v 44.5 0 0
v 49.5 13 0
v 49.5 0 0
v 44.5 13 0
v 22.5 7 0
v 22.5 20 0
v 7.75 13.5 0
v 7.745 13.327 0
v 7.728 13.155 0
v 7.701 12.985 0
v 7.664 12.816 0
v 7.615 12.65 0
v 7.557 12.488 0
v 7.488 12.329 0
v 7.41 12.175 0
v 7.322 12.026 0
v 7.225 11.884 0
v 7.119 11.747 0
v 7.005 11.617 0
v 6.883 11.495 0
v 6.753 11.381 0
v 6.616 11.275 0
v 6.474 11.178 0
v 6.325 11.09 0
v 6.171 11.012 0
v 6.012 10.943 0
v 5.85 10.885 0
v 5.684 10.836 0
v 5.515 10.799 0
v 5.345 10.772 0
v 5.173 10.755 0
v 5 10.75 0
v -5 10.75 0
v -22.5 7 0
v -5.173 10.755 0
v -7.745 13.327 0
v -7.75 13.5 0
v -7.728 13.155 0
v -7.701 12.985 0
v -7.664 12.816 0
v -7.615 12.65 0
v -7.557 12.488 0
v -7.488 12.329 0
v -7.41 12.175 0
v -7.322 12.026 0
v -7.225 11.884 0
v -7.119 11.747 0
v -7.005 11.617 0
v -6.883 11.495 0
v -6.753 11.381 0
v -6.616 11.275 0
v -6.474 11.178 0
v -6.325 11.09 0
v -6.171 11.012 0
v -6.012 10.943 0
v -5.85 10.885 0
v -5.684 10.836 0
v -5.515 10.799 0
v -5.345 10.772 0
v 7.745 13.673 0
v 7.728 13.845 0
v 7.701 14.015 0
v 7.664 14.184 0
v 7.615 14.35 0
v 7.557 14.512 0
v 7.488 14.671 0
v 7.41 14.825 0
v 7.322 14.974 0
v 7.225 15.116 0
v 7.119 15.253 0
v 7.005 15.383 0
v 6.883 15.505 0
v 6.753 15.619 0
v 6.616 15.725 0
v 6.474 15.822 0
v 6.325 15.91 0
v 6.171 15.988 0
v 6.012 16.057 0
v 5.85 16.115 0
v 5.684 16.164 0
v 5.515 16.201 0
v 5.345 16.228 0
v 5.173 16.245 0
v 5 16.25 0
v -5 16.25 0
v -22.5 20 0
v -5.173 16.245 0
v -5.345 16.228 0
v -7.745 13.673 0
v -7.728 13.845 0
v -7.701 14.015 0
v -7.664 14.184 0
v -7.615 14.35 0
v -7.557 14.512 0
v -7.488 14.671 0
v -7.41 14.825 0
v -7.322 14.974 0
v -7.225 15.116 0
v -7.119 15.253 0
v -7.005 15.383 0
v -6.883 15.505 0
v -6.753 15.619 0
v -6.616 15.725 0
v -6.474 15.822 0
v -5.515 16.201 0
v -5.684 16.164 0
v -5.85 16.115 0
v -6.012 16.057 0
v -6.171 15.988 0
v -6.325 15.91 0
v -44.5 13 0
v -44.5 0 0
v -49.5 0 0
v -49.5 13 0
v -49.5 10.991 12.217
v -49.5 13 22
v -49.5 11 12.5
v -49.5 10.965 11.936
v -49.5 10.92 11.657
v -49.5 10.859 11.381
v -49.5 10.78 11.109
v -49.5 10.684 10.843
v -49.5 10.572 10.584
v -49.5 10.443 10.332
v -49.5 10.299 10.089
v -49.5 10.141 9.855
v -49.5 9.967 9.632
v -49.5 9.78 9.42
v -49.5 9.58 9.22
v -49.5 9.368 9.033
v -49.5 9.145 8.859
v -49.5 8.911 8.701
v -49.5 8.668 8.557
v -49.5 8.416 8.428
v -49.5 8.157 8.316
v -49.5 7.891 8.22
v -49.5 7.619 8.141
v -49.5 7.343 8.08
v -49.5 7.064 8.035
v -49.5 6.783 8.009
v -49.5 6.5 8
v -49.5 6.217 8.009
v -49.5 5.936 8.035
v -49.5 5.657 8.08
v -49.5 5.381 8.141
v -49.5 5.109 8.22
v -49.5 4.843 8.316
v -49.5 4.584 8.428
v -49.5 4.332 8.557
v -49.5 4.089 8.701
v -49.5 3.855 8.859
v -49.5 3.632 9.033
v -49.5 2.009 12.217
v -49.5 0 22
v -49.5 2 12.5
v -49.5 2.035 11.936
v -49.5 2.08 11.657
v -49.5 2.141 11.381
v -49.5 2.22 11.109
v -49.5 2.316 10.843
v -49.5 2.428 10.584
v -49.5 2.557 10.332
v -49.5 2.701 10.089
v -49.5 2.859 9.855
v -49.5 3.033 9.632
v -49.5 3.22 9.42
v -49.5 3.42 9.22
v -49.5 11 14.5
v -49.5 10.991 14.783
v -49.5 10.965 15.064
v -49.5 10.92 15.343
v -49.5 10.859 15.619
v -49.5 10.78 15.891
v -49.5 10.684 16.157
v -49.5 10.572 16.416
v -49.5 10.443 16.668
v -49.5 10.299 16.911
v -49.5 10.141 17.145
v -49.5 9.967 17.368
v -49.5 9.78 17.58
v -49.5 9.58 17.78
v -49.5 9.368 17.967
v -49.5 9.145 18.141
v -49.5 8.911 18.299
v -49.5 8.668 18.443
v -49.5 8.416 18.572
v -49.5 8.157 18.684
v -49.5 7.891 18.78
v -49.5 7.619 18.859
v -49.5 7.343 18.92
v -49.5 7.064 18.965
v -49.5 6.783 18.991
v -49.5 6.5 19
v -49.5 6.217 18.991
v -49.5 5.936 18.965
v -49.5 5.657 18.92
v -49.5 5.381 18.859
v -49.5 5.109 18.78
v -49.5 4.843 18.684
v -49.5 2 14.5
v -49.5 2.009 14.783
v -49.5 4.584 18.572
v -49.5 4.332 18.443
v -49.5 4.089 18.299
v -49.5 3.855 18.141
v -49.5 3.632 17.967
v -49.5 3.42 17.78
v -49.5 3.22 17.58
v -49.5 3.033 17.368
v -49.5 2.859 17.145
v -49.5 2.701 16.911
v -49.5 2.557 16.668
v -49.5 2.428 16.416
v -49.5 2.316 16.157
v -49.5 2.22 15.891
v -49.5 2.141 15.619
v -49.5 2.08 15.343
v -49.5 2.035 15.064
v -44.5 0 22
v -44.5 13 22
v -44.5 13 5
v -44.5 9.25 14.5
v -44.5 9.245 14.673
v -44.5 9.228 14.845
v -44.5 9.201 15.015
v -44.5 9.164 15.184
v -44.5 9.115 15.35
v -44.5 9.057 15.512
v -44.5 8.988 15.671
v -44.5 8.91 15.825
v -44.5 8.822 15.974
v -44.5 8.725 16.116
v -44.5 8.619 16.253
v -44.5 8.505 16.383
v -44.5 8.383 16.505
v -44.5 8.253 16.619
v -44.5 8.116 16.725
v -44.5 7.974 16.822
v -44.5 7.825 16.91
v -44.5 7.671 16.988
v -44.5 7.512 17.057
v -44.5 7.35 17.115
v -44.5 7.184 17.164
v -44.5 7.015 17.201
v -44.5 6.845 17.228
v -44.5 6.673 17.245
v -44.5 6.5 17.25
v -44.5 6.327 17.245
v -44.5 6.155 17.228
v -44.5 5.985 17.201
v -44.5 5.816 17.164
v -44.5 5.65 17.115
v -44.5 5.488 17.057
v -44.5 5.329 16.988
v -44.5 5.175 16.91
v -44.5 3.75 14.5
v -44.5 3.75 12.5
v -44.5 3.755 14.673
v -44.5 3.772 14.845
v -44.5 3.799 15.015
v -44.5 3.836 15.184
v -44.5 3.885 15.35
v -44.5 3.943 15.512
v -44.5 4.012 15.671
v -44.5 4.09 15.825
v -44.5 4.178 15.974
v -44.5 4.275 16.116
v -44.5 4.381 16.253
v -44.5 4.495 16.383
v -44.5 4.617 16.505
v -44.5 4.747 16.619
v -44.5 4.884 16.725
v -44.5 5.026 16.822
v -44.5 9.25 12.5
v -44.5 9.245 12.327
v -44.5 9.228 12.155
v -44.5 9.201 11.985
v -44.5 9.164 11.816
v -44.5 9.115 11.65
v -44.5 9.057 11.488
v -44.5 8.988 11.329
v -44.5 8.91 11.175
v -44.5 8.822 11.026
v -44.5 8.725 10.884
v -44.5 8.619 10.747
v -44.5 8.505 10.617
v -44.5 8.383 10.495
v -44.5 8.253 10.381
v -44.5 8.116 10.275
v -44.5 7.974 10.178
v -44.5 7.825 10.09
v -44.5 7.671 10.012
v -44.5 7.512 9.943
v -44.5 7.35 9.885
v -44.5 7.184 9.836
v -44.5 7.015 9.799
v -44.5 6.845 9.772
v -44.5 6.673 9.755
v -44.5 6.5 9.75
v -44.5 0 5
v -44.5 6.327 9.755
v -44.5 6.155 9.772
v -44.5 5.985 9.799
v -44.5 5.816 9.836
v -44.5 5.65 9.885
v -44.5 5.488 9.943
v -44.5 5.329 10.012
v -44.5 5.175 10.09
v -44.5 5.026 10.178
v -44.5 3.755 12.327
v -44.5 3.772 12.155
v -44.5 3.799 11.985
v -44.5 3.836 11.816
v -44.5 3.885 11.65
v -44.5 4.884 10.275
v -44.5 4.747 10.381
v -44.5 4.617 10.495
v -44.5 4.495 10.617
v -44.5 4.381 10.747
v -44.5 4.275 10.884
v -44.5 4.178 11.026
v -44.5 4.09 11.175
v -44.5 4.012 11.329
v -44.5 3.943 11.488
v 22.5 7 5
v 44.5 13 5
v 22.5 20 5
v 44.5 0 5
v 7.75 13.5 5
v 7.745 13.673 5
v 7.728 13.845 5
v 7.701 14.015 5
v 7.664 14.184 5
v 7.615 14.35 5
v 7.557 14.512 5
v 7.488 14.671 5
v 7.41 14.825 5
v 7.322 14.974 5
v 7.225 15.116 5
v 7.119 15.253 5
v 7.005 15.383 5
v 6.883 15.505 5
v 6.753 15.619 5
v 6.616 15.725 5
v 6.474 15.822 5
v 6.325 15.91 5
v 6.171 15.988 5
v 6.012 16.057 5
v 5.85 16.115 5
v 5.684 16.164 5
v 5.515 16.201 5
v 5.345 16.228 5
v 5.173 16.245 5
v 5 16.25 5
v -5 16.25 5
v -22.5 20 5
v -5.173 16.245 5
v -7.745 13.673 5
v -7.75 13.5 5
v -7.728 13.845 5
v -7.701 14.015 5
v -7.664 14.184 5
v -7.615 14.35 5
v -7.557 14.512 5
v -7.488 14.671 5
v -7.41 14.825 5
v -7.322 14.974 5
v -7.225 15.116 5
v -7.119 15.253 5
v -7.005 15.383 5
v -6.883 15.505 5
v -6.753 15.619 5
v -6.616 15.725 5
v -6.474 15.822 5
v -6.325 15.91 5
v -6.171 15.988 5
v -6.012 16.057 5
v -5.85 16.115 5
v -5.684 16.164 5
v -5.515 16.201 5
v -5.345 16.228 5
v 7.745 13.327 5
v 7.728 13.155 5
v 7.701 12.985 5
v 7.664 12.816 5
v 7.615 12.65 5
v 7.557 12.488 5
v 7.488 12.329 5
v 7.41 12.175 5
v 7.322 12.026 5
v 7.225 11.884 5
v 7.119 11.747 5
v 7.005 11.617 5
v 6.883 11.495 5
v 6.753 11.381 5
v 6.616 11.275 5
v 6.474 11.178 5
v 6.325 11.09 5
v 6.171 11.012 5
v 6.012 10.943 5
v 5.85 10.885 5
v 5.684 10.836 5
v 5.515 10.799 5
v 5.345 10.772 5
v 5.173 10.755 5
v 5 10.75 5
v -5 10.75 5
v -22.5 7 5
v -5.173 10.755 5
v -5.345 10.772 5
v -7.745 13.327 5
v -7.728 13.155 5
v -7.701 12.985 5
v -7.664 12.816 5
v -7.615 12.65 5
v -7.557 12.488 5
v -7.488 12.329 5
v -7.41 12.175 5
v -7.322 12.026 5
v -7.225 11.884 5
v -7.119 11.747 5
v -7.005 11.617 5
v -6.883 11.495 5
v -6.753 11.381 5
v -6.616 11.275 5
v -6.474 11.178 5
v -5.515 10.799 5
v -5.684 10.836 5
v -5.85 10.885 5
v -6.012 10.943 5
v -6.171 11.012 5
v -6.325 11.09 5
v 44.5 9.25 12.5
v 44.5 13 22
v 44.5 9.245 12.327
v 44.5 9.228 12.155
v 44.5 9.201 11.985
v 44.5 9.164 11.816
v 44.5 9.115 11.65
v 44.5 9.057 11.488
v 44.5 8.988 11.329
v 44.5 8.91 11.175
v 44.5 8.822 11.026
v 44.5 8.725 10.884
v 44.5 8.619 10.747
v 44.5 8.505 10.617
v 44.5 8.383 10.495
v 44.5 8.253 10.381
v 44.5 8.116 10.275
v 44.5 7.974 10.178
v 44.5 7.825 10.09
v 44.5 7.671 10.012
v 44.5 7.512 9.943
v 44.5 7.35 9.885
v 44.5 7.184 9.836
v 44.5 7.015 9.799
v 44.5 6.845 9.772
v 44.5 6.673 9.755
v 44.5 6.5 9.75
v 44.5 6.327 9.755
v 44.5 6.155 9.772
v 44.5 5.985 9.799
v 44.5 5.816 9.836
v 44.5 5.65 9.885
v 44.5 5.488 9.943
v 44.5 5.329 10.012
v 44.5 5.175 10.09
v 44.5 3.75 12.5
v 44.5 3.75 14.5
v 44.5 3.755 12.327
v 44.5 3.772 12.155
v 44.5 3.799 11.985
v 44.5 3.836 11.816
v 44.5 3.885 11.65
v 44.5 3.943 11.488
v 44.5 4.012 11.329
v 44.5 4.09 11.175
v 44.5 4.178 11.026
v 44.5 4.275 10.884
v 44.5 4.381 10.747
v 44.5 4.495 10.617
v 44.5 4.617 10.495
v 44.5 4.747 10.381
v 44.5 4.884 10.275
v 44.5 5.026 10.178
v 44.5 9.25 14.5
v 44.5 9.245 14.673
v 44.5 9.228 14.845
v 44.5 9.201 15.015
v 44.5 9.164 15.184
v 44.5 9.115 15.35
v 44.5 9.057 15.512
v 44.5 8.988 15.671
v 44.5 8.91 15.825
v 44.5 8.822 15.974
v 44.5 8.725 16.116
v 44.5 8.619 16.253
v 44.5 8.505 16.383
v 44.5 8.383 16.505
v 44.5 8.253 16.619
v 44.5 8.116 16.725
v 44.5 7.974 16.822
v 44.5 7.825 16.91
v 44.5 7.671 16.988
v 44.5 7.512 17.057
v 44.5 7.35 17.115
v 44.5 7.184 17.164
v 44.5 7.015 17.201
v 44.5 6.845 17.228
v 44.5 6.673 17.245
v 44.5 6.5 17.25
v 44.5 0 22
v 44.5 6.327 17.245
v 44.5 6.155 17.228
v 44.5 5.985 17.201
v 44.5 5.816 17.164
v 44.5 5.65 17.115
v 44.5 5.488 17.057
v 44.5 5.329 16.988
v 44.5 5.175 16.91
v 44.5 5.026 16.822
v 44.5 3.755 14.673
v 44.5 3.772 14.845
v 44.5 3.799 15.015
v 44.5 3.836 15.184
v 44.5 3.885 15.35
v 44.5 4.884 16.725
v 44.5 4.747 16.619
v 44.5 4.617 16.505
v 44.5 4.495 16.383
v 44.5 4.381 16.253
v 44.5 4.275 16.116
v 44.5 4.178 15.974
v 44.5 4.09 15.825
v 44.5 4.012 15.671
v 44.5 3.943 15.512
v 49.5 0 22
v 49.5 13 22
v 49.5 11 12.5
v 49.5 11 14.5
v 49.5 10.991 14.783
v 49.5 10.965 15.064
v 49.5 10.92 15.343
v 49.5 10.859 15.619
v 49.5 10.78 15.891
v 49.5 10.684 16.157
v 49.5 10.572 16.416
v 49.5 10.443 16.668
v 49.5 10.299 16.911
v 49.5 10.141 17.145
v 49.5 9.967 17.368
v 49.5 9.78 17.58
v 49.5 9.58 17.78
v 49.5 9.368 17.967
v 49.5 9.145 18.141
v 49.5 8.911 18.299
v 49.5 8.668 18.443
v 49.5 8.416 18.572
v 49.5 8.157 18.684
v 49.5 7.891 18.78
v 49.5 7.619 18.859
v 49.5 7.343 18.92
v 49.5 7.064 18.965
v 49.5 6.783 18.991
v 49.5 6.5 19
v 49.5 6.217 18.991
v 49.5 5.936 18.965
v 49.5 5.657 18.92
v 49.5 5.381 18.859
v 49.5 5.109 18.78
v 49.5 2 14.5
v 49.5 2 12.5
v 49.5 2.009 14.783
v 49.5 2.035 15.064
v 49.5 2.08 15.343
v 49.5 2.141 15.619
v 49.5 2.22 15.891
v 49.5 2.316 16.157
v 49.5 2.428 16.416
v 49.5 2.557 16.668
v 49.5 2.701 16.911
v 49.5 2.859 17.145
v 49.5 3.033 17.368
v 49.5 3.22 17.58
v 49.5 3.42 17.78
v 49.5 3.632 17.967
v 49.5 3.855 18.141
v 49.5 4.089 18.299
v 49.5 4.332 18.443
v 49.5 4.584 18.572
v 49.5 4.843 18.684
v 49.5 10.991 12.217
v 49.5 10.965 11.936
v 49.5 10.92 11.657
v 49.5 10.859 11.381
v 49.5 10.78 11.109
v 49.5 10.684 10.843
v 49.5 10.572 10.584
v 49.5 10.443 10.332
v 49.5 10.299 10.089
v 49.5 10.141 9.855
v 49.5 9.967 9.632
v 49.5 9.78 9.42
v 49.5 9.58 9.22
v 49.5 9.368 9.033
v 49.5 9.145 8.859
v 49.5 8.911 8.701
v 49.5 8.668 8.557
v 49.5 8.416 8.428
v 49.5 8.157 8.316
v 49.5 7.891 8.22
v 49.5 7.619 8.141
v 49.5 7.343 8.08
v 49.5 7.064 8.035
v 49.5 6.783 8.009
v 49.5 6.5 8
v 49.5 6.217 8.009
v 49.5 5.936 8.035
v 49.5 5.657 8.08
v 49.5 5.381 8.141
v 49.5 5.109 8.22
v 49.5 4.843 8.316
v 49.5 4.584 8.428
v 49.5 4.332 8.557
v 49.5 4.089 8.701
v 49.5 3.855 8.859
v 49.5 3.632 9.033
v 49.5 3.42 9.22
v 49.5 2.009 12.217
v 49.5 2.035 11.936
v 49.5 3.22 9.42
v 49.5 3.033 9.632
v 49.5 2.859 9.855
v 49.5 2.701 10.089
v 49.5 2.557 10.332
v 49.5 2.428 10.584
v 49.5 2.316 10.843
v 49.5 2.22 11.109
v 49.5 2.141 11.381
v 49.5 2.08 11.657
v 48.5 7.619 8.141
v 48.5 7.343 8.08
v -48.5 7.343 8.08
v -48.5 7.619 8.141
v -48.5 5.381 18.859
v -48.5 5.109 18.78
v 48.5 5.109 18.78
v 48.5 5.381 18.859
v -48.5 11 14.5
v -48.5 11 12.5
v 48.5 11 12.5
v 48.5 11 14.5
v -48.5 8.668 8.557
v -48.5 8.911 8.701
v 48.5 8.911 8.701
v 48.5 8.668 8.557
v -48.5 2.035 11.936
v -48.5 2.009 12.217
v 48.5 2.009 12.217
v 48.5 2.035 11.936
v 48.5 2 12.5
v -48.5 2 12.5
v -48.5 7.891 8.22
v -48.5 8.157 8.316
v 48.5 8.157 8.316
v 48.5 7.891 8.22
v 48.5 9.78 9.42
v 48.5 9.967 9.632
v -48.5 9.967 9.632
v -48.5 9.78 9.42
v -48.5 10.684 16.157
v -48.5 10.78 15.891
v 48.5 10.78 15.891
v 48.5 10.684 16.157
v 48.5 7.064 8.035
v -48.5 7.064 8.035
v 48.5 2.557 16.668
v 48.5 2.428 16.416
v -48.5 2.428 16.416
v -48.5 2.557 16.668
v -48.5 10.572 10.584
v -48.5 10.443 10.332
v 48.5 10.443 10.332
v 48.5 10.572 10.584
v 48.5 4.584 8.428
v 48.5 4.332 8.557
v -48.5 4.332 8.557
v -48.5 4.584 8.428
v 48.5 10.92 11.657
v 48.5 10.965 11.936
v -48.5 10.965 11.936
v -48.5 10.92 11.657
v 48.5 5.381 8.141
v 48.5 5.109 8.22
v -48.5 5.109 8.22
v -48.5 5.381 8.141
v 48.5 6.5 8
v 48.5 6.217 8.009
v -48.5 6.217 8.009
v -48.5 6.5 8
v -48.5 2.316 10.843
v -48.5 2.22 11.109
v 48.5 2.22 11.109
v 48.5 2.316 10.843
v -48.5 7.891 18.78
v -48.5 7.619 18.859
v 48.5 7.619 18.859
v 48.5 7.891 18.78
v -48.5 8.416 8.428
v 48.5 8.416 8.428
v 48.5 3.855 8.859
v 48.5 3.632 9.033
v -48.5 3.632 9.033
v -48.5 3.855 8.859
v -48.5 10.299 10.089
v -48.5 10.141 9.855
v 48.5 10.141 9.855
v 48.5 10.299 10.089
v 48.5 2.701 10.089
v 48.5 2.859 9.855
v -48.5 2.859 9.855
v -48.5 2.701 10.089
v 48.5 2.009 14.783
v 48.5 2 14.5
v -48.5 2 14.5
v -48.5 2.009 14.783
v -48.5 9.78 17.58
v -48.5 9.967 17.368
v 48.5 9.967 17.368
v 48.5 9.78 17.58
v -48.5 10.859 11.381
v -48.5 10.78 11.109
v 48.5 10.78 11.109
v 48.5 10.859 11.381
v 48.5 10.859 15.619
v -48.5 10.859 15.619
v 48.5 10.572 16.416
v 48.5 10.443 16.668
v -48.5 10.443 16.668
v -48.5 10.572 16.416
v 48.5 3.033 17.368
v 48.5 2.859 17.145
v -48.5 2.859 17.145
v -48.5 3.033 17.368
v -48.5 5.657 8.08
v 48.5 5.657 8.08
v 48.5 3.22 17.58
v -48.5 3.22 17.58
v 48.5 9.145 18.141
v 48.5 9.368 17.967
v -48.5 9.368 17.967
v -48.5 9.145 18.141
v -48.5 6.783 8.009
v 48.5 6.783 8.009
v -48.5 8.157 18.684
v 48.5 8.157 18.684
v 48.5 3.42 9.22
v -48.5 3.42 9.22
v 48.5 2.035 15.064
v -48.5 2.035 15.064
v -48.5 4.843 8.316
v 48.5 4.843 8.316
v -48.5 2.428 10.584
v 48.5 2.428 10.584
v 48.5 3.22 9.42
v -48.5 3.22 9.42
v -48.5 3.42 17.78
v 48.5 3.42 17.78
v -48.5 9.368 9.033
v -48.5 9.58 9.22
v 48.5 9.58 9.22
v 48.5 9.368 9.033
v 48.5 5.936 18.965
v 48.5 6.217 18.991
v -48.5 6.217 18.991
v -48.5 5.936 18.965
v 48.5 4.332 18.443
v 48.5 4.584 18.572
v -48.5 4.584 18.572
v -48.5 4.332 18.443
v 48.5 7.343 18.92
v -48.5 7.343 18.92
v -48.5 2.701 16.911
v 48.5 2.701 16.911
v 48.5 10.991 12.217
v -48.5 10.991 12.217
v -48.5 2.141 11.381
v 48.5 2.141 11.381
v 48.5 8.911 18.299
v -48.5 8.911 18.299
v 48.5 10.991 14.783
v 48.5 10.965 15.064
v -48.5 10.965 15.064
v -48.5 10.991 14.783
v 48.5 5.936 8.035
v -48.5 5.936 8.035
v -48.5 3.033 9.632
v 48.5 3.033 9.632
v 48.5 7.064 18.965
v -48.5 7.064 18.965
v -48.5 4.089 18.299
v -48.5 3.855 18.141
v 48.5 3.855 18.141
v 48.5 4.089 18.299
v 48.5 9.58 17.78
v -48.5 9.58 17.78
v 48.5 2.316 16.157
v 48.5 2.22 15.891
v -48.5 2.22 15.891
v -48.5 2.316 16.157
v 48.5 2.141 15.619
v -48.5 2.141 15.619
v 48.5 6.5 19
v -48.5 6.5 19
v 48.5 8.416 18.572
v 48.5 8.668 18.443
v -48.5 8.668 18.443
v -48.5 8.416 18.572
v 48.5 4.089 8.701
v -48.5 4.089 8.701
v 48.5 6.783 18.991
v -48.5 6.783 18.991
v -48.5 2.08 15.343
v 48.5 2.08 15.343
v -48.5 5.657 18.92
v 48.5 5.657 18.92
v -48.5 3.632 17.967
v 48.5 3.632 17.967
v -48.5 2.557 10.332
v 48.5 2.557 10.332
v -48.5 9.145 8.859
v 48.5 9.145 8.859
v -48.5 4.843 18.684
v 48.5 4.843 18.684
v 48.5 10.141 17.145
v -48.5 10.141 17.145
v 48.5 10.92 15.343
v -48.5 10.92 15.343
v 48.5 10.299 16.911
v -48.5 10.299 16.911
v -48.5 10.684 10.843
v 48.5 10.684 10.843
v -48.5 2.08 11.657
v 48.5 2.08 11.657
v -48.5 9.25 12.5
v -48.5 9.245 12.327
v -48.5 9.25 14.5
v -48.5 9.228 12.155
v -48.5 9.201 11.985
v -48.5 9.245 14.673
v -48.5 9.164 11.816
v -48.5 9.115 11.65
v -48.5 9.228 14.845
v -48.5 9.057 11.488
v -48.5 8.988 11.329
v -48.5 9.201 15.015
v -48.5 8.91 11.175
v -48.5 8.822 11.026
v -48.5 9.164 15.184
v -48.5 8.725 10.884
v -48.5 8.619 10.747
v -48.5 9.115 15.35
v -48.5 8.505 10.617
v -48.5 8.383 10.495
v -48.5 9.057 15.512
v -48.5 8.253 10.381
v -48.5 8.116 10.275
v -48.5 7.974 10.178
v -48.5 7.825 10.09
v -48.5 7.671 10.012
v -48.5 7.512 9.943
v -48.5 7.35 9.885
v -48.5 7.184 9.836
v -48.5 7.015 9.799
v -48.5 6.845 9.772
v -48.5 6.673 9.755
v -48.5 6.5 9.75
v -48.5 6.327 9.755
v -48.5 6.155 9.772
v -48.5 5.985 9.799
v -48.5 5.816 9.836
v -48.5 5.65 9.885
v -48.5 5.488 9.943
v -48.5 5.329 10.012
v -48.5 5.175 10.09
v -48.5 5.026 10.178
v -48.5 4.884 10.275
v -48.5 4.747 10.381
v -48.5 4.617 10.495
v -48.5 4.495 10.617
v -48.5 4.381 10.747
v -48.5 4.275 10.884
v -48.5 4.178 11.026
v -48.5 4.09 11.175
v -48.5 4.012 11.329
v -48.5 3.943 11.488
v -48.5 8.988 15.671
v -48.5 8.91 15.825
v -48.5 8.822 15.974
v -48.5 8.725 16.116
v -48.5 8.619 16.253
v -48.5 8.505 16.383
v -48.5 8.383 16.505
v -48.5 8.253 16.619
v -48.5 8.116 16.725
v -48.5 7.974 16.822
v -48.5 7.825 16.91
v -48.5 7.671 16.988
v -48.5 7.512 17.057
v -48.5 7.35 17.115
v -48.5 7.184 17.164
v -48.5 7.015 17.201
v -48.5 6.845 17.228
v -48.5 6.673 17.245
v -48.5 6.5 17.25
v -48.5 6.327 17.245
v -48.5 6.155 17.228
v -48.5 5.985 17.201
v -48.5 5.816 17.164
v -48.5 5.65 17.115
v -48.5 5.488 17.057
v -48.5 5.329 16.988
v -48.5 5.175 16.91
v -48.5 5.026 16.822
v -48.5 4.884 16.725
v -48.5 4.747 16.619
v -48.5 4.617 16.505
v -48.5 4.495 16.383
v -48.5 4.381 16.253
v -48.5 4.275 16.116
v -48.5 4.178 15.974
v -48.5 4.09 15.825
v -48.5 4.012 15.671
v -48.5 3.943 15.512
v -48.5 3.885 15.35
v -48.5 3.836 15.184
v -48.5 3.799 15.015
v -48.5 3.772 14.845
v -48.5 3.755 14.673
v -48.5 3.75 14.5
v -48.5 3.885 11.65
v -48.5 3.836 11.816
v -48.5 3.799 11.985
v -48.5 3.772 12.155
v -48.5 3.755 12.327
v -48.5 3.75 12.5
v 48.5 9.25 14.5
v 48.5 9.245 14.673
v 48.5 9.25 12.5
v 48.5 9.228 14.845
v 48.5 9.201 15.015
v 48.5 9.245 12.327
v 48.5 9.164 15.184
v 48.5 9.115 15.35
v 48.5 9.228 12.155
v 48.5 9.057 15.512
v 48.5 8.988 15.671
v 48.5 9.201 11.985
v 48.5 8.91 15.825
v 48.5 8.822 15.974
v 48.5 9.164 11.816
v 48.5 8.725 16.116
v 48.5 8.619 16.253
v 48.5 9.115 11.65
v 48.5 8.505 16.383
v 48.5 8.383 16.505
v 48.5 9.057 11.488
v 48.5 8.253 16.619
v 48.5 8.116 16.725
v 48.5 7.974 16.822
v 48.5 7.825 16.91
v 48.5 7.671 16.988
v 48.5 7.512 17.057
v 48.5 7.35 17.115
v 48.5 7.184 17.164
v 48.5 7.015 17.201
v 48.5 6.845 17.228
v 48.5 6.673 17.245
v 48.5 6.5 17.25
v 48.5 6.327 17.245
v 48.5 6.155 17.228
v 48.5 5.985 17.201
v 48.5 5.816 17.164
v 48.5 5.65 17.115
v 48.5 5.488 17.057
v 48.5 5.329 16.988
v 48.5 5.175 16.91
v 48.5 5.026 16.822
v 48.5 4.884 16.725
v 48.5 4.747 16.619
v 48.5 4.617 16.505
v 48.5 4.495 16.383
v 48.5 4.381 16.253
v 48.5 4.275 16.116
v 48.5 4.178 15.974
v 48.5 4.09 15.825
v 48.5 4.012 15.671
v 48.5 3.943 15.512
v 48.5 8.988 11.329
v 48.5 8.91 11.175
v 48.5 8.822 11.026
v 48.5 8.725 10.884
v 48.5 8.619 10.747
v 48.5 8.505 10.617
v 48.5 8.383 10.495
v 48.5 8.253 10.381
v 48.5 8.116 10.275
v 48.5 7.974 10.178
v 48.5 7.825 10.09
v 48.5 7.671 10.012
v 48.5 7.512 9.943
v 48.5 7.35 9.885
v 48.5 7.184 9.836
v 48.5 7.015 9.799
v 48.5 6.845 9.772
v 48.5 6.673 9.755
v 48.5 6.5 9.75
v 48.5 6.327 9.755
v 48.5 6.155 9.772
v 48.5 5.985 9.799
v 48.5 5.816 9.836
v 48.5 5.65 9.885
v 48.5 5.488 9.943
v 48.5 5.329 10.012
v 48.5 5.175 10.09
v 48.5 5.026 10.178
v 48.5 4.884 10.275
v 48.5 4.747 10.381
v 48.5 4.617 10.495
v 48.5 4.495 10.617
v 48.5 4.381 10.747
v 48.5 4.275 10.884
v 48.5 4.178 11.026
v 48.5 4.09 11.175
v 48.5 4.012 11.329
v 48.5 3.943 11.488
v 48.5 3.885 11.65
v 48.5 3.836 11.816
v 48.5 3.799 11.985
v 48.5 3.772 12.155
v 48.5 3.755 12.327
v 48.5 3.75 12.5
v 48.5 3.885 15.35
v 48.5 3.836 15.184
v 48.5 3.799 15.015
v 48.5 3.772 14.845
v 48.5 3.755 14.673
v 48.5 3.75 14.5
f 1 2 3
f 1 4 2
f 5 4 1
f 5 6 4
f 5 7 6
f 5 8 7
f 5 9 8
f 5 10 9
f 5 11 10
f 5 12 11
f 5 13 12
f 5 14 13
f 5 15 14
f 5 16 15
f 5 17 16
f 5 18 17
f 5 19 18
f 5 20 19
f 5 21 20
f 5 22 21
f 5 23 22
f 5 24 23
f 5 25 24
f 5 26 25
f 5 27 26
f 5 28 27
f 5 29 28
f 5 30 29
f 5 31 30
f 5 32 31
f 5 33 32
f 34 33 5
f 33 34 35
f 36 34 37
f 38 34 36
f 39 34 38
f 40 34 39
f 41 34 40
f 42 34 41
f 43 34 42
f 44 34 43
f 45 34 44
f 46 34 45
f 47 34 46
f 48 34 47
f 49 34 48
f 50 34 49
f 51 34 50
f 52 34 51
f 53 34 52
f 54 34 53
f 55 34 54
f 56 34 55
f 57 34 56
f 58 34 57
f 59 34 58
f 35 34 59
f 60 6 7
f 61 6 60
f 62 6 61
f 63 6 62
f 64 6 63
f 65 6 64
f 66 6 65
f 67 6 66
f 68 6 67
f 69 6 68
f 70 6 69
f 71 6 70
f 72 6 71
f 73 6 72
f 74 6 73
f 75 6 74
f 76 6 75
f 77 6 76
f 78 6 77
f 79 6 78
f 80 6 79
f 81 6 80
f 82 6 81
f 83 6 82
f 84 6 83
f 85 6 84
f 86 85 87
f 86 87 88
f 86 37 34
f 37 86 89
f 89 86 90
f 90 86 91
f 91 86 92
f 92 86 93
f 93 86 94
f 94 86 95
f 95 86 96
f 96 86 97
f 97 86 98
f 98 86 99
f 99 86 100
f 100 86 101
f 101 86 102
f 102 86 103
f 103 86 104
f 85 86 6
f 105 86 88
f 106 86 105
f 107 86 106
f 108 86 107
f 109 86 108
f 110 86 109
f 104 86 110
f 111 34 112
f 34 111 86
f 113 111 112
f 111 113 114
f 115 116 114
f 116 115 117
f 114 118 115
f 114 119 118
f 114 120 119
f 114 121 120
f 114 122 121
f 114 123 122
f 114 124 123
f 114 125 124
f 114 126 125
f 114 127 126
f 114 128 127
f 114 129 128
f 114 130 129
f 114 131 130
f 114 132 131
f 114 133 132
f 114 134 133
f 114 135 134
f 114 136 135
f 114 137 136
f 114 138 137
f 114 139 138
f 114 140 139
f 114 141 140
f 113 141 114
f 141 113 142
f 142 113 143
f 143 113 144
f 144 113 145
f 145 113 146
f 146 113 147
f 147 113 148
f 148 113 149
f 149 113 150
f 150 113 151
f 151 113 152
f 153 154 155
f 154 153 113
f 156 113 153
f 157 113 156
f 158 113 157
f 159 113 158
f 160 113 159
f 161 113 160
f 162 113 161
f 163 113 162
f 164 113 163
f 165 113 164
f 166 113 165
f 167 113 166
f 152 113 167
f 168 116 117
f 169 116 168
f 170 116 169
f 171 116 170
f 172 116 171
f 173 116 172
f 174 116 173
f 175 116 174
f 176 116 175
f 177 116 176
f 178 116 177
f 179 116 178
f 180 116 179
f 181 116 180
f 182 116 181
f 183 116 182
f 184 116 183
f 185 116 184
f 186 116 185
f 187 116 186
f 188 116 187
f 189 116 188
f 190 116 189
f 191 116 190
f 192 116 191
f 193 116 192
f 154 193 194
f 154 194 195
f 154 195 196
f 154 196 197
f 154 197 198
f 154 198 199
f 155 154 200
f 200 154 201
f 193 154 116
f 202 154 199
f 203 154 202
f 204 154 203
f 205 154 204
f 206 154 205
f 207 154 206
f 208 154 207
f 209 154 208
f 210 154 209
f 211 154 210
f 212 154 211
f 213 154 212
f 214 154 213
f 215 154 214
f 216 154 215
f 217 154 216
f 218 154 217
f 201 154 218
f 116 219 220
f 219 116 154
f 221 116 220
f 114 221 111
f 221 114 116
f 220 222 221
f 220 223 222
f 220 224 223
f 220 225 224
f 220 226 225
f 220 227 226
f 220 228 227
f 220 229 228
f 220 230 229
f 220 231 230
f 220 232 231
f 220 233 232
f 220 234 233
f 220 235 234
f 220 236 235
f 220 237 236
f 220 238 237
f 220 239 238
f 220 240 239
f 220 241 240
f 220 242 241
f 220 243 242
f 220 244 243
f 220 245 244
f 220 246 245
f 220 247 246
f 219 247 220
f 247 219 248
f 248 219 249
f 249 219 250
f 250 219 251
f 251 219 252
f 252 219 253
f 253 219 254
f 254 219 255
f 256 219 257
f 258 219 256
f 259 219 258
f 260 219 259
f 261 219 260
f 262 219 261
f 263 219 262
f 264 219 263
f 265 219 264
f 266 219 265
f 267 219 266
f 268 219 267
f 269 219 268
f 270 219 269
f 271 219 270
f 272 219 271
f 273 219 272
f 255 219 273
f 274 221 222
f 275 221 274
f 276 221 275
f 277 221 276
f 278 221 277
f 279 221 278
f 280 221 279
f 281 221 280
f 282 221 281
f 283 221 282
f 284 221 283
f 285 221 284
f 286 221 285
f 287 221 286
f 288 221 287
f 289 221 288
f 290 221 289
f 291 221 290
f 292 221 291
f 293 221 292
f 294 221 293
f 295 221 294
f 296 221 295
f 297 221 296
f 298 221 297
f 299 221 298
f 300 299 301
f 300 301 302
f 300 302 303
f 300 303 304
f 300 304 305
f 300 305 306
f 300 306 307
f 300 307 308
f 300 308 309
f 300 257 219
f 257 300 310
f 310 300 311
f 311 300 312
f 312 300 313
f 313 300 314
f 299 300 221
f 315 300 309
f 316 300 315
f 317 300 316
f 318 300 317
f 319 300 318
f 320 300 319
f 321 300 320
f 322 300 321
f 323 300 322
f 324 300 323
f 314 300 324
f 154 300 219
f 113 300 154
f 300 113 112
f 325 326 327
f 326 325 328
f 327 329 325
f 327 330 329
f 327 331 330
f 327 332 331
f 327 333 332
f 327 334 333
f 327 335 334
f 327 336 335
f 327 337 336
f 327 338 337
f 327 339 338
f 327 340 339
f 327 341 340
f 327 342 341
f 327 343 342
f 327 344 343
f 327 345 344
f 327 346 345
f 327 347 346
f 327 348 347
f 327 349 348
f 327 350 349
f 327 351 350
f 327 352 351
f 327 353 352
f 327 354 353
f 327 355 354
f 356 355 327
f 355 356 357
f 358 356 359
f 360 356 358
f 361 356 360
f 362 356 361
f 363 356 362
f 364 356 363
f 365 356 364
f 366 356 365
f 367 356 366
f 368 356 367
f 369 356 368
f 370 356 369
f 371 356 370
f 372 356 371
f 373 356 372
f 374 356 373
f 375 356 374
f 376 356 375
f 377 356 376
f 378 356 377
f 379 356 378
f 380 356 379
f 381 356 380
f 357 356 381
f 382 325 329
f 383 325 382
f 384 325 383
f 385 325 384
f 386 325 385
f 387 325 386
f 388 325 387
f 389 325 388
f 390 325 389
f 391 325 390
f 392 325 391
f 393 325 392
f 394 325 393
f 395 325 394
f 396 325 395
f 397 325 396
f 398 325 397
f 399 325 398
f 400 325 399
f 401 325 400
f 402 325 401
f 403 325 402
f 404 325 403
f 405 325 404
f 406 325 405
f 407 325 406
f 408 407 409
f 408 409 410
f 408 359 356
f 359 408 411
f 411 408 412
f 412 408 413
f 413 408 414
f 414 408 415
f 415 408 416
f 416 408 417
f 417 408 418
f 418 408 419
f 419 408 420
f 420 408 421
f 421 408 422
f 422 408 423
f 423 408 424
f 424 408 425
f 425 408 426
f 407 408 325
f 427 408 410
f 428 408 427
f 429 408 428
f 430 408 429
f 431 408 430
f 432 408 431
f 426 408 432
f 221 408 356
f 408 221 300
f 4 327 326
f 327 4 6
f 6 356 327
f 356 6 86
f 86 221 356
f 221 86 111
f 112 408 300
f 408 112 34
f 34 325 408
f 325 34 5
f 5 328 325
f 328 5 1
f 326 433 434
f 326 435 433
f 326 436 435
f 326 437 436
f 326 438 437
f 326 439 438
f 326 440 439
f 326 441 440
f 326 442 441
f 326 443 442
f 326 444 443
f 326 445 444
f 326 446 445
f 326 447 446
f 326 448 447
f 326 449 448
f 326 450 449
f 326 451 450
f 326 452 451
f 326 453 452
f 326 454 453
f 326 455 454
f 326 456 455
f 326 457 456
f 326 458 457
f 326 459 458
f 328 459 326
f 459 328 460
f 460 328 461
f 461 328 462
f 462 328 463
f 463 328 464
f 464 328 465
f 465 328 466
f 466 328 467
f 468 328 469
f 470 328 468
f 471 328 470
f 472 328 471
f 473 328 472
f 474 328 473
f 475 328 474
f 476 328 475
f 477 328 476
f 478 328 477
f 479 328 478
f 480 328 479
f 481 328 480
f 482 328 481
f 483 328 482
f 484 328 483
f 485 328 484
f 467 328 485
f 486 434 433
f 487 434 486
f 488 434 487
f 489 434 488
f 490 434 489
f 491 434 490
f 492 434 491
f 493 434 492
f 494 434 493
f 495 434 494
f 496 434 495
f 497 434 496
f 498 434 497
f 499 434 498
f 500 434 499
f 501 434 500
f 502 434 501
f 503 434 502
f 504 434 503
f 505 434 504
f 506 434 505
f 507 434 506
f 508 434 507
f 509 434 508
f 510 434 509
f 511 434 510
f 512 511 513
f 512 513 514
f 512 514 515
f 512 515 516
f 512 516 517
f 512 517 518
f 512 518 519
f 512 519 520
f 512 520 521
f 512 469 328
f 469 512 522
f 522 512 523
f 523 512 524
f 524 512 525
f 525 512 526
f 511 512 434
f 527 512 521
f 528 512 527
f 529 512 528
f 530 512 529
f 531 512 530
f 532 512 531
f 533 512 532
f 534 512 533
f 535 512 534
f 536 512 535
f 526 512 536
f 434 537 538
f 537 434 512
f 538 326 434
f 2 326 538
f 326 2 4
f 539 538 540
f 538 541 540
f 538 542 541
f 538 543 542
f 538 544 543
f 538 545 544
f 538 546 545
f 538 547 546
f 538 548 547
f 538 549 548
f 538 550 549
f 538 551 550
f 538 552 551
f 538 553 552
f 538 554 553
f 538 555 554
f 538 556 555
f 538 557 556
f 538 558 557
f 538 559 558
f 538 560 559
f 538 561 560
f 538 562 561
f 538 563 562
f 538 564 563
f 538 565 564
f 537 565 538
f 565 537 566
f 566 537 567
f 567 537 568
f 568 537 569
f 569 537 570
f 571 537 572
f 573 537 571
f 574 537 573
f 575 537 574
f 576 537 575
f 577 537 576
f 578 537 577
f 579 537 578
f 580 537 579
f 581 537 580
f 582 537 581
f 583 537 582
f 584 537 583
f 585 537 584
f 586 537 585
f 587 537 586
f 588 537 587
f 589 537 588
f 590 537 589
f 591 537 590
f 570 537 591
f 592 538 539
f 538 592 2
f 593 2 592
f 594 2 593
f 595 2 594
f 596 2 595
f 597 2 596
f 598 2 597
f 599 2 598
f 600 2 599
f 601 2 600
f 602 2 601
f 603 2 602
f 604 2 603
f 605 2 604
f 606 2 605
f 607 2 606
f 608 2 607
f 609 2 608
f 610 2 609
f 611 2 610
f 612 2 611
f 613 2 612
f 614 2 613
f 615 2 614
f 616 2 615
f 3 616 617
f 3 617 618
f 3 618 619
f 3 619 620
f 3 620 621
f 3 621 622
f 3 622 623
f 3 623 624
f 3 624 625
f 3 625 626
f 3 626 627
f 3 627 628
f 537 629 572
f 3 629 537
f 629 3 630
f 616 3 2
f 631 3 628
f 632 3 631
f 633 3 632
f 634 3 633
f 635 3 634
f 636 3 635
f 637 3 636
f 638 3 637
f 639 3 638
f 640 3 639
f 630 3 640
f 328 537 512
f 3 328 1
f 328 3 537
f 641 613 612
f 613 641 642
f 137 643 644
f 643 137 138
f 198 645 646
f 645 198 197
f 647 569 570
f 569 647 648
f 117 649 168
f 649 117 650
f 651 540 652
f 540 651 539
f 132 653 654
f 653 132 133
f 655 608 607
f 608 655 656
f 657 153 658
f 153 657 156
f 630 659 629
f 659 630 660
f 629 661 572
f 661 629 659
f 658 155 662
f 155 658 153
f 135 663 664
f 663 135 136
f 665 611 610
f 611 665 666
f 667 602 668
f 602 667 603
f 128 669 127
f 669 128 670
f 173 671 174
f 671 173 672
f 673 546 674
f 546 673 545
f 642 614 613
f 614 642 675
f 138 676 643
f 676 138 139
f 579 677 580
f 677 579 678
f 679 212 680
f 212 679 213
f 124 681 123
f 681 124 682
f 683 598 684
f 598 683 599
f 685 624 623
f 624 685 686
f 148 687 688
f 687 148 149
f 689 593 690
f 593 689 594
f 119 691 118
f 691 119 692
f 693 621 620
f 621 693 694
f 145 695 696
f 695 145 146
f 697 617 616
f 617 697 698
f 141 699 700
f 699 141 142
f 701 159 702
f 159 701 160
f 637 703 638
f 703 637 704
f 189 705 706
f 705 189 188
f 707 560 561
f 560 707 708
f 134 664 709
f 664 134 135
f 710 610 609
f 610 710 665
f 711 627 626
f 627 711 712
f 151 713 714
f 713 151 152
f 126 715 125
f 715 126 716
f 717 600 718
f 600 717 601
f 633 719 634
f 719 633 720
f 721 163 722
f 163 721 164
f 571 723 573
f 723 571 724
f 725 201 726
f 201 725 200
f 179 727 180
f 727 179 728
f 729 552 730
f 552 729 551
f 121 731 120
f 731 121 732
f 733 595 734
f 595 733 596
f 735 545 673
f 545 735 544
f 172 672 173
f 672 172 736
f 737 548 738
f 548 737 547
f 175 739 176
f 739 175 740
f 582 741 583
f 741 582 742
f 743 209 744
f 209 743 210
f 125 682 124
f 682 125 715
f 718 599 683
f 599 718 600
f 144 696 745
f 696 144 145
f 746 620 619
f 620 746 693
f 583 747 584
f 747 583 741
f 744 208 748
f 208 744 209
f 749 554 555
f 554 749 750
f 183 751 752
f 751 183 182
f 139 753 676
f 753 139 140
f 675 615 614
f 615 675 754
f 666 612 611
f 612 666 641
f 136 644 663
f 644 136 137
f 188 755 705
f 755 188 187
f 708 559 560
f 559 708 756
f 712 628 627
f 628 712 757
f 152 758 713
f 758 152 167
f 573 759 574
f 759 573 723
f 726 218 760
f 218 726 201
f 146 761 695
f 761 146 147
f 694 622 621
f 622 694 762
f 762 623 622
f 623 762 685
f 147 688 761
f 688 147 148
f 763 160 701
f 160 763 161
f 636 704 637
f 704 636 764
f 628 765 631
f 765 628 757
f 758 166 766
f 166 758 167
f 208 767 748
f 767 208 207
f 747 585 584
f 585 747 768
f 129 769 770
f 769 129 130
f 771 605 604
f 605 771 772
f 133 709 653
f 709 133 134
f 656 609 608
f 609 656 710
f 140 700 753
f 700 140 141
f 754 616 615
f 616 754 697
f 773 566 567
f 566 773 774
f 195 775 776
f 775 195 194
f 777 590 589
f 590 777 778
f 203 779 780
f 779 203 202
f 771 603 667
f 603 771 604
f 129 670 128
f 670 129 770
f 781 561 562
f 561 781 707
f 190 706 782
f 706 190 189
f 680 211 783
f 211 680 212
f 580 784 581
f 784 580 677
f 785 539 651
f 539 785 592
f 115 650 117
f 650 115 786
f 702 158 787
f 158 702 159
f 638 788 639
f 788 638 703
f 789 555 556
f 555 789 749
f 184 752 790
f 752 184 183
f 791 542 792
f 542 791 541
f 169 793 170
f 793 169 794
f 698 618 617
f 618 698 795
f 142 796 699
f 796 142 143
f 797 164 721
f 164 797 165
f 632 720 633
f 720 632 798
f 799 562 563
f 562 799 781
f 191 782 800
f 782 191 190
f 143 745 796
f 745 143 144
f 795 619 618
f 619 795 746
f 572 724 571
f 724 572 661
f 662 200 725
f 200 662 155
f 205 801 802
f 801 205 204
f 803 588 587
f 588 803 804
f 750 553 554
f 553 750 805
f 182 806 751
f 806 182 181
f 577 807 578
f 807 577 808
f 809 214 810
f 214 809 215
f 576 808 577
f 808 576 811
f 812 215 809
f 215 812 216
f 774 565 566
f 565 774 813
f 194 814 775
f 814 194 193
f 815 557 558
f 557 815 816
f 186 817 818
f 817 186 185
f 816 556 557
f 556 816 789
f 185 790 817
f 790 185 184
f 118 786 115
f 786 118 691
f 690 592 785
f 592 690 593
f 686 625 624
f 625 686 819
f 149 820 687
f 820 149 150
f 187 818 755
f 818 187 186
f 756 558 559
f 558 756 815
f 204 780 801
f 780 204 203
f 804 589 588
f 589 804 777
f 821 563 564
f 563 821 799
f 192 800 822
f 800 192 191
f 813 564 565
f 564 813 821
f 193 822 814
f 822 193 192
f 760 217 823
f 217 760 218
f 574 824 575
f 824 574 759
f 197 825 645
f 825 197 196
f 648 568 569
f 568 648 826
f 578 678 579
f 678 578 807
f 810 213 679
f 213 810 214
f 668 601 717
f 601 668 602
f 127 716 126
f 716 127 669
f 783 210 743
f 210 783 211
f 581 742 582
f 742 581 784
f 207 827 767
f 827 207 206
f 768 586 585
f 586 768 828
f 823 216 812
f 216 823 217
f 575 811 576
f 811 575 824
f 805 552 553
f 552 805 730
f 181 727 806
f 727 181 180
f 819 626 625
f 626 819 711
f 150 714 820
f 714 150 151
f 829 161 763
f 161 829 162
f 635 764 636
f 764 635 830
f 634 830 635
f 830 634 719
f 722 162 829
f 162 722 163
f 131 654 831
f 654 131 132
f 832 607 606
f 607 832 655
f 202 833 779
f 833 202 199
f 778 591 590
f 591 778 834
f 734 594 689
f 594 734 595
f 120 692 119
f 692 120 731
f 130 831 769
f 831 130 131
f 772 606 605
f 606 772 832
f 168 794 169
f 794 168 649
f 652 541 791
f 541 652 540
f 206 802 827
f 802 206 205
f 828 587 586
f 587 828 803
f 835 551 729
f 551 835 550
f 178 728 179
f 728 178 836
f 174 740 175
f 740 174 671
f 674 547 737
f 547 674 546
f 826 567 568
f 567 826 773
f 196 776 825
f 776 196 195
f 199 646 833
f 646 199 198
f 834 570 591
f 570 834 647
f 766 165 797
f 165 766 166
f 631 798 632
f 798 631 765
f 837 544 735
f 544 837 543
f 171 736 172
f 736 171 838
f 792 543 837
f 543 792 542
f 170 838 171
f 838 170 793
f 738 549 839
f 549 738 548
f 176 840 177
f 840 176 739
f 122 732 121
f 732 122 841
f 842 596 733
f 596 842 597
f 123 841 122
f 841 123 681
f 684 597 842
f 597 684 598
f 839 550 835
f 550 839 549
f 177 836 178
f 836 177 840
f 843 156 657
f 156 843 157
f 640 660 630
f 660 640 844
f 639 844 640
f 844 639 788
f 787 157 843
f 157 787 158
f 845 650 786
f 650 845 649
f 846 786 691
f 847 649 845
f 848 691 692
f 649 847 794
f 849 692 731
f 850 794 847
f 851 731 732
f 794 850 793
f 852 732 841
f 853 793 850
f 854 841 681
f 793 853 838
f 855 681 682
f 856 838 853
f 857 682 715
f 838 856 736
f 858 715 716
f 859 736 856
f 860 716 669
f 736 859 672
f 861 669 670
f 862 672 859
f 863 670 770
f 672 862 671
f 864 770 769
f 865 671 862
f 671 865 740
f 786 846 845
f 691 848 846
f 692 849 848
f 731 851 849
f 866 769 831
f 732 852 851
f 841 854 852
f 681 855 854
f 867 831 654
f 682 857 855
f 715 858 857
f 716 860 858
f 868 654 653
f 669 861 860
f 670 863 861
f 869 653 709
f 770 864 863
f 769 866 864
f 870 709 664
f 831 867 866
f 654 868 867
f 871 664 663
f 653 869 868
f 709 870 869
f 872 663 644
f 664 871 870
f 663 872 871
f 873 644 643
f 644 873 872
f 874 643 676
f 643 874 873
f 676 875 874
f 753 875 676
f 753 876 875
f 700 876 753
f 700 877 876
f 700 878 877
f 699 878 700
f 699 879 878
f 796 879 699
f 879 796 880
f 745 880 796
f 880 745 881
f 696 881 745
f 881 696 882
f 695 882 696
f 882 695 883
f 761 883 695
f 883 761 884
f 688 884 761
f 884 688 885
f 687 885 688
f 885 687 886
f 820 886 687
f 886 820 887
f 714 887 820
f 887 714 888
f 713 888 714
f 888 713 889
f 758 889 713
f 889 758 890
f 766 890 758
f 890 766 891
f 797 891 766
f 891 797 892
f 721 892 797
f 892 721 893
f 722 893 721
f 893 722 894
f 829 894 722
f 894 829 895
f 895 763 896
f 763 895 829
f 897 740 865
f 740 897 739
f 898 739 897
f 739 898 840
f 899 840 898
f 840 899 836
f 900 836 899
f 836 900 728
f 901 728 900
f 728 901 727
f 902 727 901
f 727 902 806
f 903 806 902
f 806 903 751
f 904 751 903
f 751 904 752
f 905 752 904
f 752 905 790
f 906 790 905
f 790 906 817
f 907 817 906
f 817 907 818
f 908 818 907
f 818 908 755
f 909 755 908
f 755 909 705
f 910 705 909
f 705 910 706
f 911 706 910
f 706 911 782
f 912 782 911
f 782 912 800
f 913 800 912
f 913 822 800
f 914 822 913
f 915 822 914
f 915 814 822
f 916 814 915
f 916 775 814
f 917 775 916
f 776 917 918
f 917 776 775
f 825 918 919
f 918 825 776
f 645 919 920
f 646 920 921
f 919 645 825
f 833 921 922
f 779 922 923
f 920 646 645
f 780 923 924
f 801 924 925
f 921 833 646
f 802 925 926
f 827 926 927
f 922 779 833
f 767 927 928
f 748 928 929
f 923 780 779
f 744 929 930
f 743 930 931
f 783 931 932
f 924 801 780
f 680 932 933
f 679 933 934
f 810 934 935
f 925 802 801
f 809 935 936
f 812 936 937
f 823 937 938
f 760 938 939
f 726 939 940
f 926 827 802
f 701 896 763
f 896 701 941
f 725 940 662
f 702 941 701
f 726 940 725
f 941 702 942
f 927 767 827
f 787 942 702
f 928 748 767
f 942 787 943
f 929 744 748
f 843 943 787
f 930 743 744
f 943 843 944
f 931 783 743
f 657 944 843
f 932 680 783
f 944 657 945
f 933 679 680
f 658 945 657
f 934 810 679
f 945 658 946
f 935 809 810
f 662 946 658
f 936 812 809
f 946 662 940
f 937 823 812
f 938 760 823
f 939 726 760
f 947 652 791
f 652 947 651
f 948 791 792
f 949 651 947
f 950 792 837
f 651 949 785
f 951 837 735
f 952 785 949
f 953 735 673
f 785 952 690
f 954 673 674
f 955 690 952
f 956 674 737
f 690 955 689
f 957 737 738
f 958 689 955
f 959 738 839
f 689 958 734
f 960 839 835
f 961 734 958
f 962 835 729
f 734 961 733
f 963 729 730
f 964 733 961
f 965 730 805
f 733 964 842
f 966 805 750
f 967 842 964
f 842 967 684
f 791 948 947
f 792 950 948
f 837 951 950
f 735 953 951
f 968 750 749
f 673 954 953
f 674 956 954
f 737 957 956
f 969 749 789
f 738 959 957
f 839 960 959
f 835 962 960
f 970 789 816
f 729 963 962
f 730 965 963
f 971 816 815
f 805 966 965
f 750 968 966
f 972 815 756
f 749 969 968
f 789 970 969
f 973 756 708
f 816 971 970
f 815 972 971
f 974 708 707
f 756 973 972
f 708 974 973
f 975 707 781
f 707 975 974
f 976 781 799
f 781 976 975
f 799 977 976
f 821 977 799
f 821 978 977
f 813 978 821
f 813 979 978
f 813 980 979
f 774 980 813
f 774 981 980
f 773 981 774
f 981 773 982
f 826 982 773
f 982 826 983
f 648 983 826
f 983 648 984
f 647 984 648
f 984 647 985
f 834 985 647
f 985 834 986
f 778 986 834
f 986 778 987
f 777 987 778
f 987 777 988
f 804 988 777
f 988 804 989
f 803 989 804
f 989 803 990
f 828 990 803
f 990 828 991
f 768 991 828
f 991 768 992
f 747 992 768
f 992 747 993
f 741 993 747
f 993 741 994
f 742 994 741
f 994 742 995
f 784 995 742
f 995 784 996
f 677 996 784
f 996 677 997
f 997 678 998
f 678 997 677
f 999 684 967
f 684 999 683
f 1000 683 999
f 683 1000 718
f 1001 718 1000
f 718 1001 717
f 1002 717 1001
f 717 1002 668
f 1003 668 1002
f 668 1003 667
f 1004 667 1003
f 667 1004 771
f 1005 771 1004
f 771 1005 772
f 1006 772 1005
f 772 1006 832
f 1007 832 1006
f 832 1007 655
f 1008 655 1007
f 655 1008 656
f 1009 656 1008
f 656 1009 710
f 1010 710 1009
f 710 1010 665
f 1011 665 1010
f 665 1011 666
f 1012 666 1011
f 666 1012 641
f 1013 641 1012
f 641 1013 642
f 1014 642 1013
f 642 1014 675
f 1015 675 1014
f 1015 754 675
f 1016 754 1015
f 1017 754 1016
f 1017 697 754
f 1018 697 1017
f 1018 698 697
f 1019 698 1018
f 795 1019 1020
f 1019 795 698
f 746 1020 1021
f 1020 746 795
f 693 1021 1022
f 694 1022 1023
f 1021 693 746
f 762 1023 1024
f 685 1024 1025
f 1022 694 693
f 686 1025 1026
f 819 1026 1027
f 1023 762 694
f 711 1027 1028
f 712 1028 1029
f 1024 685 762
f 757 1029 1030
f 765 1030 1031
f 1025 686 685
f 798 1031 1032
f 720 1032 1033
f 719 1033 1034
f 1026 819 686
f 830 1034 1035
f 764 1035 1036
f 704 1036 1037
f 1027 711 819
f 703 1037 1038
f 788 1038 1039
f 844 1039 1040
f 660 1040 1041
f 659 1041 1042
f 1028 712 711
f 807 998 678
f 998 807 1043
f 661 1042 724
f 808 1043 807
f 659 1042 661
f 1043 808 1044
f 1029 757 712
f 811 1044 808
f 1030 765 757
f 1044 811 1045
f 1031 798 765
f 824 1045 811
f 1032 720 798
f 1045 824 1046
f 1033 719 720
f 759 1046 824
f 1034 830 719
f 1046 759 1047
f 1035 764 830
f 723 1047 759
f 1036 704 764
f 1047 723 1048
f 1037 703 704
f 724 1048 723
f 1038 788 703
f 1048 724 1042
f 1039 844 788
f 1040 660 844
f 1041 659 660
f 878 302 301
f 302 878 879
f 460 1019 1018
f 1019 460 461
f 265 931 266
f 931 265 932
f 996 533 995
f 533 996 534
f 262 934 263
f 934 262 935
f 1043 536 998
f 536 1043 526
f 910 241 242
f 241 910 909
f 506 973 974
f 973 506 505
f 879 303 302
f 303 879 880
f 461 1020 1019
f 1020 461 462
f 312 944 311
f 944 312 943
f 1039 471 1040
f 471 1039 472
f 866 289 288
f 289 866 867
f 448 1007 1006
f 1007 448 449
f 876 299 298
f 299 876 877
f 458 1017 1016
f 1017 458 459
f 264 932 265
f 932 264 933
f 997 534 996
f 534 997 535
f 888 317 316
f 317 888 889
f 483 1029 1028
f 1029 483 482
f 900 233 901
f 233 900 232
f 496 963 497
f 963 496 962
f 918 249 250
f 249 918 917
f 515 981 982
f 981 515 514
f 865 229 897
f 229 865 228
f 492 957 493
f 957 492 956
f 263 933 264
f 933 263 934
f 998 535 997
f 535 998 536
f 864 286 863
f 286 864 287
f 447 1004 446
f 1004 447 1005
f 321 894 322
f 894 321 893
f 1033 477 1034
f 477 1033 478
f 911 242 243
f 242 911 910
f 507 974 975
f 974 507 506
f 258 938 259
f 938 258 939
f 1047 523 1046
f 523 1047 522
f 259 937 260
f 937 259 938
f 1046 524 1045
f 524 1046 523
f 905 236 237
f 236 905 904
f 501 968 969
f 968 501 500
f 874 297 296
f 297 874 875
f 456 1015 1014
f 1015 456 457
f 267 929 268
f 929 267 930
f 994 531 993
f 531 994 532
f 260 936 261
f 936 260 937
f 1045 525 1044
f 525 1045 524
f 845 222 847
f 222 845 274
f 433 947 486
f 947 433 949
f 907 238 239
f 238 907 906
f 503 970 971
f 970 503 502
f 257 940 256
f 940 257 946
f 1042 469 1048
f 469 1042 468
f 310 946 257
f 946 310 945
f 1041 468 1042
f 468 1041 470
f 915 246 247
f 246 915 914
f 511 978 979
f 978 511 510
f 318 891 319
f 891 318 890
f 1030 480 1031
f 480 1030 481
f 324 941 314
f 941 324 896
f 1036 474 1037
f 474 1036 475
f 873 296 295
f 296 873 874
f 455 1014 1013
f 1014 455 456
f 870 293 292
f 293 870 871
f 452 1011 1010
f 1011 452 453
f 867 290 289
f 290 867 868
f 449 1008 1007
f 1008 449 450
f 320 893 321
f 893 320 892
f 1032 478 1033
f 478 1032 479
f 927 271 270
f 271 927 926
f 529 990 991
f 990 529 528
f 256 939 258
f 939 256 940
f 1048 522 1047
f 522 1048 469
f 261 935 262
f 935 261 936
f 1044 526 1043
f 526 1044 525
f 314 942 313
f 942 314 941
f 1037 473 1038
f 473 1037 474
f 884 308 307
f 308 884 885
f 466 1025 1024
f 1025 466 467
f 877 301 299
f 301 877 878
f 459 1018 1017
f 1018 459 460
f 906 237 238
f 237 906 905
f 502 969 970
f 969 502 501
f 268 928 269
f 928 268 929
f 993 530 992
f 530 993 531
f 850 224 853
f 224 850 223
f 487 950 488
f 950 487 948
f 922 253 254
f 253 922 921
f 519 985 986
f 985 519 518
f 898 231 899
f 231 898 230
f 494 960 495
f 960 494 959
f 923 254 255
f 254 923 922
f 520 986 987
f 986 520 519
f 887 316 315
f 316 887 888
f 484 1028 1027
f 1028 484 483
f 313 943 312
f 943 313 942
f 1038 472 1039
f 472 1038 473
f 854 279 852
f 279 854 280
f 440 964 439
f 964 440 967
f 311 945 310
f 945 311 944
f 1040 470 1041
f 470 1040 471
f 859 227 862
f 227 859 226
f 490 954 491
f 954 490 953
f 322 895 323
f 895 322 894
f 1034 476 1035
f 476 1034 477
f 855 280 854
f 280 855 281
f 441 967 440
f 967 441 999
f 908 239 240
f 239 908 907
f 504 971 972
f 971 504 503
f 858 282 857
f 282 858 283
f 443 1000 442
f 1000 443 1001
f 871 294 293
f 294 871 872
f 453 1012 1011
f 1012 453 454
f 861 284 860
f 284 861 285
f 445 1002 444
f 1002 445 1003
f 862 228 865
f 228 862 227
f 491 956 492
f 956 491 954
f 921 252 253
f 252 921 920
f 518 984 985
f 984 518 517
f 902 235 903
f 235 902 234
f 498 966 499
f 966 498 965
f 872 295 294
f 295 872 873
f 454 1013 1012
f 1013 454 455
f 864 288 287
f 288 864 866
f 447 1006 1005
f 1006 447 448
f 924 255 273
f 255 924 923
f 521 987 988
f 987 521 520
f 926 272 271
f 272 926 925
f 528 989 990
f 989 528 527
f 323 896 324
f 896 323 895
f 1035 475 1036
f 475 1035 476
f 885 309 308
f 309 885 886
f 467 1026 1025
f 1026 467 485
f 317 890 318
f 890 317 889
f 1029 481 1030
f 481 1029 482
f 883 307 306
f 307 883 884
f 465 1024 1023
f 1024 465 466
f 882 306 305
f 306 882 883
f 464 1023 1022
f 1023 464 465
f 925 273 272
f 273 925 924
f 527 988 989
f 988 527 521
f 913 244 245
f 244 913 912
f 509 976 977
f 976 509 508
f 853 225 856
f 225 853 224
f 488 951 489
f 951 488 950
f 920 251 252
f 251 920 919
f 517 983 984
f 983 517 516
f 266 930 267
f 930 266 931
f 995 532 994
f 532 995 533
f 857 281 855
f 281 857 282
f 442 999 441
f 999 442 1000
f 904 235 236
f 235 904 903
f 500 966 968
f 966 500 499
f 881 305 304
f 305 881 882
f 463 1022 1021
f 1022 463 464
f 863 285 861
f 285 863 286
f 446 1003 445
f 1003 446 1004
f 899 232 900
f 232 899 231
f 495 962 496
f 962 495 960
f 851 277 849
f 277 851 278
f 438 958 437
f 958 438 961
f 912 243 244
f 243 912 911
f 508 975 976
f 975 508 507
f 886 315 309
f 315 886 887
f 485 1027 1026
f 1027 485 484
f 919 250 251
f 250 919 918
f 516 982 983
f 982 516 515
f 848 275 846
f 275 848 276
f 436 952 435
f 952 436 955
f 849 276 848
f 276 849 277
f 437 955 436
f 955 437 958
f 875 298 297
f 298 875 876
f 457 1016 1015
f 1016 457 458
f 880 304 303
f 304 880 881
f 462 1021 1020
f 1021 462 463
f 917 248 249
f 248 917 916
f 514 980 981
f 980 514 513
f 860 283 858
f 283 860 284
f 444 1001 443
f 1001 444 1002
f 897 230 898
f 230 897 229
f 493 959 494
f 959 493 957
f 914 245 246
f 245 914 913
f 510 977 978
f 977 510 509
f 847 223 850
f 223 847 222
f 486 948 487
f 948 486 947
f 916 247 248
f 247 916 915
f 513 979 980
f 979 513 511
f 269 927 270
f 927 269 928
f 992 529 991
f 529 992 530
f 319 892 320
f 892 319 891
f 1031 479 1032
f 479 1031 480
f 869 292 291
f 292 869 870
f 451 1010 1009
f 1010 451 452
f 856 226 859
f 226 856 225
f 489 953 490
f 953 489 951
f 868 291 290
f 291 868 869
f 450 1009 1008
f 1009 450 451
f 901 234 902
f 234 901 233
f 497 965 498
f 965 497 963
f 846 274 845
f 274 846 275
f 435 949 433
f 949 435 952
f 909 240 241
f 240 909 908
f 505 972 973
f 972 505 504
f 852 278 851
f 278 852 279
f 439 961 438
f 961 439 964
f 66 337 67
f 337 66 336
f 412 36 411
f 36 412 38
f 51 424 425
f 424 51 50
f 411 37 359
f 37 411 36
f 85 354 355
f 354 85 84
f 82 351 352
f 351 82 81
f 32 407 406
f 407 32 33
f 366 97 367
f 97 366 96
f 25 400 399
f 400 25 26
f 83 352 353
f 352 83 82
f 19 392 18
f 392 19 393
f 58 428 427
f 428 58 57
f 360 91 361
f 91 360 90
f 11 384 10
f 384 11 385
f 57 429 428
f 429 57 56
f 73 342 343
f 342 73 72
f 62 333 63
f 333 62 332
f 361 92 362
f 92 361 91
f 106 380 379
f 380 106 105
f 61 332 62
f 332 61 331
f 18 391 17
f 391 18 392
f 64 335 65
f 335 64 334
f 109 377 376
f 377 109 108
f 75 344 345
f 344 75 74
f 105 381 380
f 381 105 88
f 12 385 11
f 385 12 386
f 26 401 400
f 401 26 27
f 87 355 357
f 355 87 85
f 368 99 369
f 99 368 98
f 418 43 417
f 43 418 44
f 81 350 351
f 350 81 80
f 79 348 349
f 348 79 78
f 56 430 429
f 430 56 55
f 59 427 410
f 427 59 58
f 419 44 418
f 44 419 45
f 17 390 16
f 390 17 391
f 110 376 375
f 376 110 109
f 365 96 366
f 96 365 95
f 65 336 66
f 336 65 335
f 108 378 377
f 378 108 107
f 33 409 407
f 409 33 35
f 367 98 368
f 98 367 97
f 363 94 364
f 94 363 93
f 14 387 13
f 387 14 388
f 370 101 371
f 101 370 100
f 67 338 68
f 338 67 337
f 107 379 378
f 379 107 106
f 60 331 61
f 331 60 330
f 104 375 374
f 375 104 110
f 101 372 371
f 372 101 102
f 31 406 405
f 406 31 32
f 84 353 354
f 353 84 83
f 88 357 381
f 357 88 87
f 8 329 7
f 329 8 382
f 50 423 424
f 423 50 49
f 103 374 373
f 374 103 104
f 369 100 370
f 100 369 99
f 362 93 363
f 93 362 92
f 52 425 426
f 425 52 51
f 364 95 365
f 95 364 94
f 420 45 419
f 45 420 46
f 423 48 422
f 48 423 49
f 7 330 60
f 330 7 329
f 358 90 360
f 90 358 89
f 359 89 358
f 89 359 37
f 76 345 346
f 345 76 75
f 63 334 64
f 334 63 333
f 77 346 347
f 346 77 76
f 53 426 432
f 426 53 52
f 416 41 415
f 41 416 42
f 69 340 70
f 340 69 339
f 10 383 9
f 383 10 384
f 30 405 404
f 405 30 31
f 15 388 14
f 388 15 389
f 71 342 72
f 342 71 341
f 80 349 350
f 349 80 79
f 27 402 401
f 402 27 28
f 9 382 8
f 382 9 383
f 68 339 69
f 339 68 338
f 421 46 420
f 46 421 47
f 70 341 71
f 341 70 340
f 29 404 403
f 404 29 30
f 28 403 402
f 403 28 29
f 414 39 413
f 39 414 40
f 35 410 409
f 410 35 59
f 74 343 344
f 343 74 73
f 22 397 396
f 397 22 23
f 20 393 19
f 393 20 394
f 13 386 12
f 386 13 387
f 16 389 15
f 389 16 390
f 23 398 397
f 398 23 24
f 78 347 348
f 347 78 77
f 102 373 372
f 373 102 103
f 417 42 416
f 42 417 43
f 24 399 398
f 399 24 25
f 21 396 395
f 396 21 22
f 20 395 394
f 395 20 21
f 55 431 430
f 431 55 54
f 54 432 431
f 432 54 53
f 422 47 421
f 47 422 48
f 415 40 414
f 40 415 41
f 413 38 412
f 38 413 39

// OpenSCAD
// Fender bracket for Canyon Grizl
// Attaches to outward facing mount points at top of seat stays
// Designed since there is no seat stay brace with an accessory mount point
// common on other bikes.
// 
// Author: Eric Sanchez
// Date: 2025-09-27

// Number of sides for circles, if setting this low, make sure that smallest diameter still fits screw and screw head
resolution = 100;
$fn = resolution;

height = 13;
y_offset = 7;
width = 89;
x_offset = 22;
thickness = 5;
bracket_depth = 17 + thickness;
screw_radius = 5.5 / 2; // M5 screw thread diameter + ~.5 mm tolerance;
screw_head_radius = 9 / 2; // M5 screw head + ~.6 mm tolerance
cylinder_length = 600;  // Something long enough to cut through the bracket
center_slot_width = 10;
recess_depth = 1;
x_hole_slot_width = 2;

module arch() {
    let(
        v1 = [-width/2,0],
        v2 = [-width/2,height],
        v3 = [(-width/2) + x_offset, height + y_offset],
        v4 = [width/2 - x_offset, height + y_offset],
        v5 = [width/2, height],
        v6 = [width/2, 0],
        v7 = [width/2 - x_offset, y_offset],
        v8 = [(-width/2) + x_offset, y_offset]
    )
    linear_extrude(height = thickness)
        polygon(points=[v1,v2,v3,v4,v5,v6,v7,v8]);
}

module side() {
    square([thickness, height], center = false);
}

module x_holes() {
    rotate([0,90,0])
        translate([-(bracket_depth / 2) - (thickness / 2), (height / 2), 0])
            hull() {
                translate([x_hole_slot_width / 2,0,0]) cylinder(h = 500, r = screw_radius, center = true);
                translate([-(x_hole_slot_width / 2),0,0]) cylinder(h = 500, r = screw_radius, center = true);
            }
}

// Explanation:
// First cylinder is a hole the diameter of the screw head.
// Second cylinder is gap between the inside faces of the screws, make it diameter + 1 to subtract from the volume of the first cylinder
module x_hole_recess() {
    rotate([0,90,0])
        translate([-(bracket_depth / 2) - (thickness / 2), (height / 2), 0 ])
            difference() {
                hull() {
                    translate([x_hole_slot_width / 2,0,0]) cylinder(h = 500, r = screw_head_radius, center = true);
                    translate([-(x_hole_slot_width / 2),0,0]) cylinder(h = 500, r = screw_head_radius, center = true);
                }
                hull() {
                    translate([x_hole_slot_width / 2,0,0]) cylinder(h = width + (2 * (thickness - recess_depth)), r = screw_head_radius + 1, center = true);
                    translate([-(x_hole_slot_width / 2),0,0]) cylinder(h = width + (2 * (thickness - recess_depth)), r = screw_head_radius + 1, center = true);
                }
            }
}

module bracket() {
    union() {
        // left side
        linear_extrude(height = bracket_depth)
            translate([-width/2 - thickness, 0, thickness])
                side();

        // arch
        arch();

        // right side
        linear_extrude(height = bracket_depth)
            translate([width/2, 0, thickness])
                side();
    }
}

module center_slot() {
    linear_extrude(height = 10 * thickness, center = true) {
        translate([- (center_slot_width / 2), (height) / 2 + y_offset, 0])
            hull() {
                translate([center_slot_width, 0, 0]) circle(screw_radius);
                circle(screw_radius);
            }
    }
}

scale([1,1,1]){
    // union() {
    difference() {
        bracket();
        x_holes();
        center_slot();
        x_hole_recess();
    }
}
